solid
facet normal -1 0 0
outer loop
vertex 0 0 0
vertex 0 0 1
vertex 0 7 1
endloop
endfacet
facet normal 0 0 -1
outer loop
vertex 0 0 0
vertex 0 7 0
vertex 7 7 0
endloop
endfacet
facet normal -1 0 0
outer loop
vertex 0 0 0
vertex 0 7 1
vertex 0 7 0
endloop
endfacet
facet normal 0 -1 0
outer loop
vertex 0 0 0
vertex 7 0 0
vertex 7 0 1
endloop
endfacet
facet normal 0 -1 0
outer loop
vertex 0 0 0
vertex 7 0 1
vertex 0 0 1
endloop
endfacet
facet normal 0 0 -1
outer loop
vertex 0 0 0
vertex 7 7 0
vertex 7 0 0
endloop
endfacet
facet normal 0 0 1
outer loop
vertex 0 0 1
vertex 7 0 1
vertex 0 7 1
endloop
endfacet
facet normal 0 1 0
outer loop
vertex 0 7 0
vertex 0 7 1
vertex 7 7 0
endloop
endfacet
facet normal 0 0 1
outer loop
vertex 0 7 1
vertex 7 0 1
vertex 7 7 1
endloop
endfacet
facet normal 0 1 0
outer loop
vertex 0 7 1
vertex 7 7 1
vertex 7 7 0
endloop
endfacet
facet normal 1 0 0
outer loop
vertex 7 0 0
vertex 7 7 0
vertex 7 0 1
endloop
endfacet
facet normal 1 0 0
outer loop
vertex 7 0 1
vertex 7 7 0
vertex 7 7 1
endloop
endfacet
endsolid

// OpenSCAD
/* Warning, this is a very basic generator with a lot of approximation 
input data : [QFN, Y7X, 7x7x1.0mm, 48, , A, C04-00266A]
generated by com.zoubworld.electronics.cad.model3d.Basic
Date : Sun Feb 15 10:50:48 CET 2026
*/

//body
color("black")
translate([0,0,0])
cube([7.0,7.0,1.0], center=false);
